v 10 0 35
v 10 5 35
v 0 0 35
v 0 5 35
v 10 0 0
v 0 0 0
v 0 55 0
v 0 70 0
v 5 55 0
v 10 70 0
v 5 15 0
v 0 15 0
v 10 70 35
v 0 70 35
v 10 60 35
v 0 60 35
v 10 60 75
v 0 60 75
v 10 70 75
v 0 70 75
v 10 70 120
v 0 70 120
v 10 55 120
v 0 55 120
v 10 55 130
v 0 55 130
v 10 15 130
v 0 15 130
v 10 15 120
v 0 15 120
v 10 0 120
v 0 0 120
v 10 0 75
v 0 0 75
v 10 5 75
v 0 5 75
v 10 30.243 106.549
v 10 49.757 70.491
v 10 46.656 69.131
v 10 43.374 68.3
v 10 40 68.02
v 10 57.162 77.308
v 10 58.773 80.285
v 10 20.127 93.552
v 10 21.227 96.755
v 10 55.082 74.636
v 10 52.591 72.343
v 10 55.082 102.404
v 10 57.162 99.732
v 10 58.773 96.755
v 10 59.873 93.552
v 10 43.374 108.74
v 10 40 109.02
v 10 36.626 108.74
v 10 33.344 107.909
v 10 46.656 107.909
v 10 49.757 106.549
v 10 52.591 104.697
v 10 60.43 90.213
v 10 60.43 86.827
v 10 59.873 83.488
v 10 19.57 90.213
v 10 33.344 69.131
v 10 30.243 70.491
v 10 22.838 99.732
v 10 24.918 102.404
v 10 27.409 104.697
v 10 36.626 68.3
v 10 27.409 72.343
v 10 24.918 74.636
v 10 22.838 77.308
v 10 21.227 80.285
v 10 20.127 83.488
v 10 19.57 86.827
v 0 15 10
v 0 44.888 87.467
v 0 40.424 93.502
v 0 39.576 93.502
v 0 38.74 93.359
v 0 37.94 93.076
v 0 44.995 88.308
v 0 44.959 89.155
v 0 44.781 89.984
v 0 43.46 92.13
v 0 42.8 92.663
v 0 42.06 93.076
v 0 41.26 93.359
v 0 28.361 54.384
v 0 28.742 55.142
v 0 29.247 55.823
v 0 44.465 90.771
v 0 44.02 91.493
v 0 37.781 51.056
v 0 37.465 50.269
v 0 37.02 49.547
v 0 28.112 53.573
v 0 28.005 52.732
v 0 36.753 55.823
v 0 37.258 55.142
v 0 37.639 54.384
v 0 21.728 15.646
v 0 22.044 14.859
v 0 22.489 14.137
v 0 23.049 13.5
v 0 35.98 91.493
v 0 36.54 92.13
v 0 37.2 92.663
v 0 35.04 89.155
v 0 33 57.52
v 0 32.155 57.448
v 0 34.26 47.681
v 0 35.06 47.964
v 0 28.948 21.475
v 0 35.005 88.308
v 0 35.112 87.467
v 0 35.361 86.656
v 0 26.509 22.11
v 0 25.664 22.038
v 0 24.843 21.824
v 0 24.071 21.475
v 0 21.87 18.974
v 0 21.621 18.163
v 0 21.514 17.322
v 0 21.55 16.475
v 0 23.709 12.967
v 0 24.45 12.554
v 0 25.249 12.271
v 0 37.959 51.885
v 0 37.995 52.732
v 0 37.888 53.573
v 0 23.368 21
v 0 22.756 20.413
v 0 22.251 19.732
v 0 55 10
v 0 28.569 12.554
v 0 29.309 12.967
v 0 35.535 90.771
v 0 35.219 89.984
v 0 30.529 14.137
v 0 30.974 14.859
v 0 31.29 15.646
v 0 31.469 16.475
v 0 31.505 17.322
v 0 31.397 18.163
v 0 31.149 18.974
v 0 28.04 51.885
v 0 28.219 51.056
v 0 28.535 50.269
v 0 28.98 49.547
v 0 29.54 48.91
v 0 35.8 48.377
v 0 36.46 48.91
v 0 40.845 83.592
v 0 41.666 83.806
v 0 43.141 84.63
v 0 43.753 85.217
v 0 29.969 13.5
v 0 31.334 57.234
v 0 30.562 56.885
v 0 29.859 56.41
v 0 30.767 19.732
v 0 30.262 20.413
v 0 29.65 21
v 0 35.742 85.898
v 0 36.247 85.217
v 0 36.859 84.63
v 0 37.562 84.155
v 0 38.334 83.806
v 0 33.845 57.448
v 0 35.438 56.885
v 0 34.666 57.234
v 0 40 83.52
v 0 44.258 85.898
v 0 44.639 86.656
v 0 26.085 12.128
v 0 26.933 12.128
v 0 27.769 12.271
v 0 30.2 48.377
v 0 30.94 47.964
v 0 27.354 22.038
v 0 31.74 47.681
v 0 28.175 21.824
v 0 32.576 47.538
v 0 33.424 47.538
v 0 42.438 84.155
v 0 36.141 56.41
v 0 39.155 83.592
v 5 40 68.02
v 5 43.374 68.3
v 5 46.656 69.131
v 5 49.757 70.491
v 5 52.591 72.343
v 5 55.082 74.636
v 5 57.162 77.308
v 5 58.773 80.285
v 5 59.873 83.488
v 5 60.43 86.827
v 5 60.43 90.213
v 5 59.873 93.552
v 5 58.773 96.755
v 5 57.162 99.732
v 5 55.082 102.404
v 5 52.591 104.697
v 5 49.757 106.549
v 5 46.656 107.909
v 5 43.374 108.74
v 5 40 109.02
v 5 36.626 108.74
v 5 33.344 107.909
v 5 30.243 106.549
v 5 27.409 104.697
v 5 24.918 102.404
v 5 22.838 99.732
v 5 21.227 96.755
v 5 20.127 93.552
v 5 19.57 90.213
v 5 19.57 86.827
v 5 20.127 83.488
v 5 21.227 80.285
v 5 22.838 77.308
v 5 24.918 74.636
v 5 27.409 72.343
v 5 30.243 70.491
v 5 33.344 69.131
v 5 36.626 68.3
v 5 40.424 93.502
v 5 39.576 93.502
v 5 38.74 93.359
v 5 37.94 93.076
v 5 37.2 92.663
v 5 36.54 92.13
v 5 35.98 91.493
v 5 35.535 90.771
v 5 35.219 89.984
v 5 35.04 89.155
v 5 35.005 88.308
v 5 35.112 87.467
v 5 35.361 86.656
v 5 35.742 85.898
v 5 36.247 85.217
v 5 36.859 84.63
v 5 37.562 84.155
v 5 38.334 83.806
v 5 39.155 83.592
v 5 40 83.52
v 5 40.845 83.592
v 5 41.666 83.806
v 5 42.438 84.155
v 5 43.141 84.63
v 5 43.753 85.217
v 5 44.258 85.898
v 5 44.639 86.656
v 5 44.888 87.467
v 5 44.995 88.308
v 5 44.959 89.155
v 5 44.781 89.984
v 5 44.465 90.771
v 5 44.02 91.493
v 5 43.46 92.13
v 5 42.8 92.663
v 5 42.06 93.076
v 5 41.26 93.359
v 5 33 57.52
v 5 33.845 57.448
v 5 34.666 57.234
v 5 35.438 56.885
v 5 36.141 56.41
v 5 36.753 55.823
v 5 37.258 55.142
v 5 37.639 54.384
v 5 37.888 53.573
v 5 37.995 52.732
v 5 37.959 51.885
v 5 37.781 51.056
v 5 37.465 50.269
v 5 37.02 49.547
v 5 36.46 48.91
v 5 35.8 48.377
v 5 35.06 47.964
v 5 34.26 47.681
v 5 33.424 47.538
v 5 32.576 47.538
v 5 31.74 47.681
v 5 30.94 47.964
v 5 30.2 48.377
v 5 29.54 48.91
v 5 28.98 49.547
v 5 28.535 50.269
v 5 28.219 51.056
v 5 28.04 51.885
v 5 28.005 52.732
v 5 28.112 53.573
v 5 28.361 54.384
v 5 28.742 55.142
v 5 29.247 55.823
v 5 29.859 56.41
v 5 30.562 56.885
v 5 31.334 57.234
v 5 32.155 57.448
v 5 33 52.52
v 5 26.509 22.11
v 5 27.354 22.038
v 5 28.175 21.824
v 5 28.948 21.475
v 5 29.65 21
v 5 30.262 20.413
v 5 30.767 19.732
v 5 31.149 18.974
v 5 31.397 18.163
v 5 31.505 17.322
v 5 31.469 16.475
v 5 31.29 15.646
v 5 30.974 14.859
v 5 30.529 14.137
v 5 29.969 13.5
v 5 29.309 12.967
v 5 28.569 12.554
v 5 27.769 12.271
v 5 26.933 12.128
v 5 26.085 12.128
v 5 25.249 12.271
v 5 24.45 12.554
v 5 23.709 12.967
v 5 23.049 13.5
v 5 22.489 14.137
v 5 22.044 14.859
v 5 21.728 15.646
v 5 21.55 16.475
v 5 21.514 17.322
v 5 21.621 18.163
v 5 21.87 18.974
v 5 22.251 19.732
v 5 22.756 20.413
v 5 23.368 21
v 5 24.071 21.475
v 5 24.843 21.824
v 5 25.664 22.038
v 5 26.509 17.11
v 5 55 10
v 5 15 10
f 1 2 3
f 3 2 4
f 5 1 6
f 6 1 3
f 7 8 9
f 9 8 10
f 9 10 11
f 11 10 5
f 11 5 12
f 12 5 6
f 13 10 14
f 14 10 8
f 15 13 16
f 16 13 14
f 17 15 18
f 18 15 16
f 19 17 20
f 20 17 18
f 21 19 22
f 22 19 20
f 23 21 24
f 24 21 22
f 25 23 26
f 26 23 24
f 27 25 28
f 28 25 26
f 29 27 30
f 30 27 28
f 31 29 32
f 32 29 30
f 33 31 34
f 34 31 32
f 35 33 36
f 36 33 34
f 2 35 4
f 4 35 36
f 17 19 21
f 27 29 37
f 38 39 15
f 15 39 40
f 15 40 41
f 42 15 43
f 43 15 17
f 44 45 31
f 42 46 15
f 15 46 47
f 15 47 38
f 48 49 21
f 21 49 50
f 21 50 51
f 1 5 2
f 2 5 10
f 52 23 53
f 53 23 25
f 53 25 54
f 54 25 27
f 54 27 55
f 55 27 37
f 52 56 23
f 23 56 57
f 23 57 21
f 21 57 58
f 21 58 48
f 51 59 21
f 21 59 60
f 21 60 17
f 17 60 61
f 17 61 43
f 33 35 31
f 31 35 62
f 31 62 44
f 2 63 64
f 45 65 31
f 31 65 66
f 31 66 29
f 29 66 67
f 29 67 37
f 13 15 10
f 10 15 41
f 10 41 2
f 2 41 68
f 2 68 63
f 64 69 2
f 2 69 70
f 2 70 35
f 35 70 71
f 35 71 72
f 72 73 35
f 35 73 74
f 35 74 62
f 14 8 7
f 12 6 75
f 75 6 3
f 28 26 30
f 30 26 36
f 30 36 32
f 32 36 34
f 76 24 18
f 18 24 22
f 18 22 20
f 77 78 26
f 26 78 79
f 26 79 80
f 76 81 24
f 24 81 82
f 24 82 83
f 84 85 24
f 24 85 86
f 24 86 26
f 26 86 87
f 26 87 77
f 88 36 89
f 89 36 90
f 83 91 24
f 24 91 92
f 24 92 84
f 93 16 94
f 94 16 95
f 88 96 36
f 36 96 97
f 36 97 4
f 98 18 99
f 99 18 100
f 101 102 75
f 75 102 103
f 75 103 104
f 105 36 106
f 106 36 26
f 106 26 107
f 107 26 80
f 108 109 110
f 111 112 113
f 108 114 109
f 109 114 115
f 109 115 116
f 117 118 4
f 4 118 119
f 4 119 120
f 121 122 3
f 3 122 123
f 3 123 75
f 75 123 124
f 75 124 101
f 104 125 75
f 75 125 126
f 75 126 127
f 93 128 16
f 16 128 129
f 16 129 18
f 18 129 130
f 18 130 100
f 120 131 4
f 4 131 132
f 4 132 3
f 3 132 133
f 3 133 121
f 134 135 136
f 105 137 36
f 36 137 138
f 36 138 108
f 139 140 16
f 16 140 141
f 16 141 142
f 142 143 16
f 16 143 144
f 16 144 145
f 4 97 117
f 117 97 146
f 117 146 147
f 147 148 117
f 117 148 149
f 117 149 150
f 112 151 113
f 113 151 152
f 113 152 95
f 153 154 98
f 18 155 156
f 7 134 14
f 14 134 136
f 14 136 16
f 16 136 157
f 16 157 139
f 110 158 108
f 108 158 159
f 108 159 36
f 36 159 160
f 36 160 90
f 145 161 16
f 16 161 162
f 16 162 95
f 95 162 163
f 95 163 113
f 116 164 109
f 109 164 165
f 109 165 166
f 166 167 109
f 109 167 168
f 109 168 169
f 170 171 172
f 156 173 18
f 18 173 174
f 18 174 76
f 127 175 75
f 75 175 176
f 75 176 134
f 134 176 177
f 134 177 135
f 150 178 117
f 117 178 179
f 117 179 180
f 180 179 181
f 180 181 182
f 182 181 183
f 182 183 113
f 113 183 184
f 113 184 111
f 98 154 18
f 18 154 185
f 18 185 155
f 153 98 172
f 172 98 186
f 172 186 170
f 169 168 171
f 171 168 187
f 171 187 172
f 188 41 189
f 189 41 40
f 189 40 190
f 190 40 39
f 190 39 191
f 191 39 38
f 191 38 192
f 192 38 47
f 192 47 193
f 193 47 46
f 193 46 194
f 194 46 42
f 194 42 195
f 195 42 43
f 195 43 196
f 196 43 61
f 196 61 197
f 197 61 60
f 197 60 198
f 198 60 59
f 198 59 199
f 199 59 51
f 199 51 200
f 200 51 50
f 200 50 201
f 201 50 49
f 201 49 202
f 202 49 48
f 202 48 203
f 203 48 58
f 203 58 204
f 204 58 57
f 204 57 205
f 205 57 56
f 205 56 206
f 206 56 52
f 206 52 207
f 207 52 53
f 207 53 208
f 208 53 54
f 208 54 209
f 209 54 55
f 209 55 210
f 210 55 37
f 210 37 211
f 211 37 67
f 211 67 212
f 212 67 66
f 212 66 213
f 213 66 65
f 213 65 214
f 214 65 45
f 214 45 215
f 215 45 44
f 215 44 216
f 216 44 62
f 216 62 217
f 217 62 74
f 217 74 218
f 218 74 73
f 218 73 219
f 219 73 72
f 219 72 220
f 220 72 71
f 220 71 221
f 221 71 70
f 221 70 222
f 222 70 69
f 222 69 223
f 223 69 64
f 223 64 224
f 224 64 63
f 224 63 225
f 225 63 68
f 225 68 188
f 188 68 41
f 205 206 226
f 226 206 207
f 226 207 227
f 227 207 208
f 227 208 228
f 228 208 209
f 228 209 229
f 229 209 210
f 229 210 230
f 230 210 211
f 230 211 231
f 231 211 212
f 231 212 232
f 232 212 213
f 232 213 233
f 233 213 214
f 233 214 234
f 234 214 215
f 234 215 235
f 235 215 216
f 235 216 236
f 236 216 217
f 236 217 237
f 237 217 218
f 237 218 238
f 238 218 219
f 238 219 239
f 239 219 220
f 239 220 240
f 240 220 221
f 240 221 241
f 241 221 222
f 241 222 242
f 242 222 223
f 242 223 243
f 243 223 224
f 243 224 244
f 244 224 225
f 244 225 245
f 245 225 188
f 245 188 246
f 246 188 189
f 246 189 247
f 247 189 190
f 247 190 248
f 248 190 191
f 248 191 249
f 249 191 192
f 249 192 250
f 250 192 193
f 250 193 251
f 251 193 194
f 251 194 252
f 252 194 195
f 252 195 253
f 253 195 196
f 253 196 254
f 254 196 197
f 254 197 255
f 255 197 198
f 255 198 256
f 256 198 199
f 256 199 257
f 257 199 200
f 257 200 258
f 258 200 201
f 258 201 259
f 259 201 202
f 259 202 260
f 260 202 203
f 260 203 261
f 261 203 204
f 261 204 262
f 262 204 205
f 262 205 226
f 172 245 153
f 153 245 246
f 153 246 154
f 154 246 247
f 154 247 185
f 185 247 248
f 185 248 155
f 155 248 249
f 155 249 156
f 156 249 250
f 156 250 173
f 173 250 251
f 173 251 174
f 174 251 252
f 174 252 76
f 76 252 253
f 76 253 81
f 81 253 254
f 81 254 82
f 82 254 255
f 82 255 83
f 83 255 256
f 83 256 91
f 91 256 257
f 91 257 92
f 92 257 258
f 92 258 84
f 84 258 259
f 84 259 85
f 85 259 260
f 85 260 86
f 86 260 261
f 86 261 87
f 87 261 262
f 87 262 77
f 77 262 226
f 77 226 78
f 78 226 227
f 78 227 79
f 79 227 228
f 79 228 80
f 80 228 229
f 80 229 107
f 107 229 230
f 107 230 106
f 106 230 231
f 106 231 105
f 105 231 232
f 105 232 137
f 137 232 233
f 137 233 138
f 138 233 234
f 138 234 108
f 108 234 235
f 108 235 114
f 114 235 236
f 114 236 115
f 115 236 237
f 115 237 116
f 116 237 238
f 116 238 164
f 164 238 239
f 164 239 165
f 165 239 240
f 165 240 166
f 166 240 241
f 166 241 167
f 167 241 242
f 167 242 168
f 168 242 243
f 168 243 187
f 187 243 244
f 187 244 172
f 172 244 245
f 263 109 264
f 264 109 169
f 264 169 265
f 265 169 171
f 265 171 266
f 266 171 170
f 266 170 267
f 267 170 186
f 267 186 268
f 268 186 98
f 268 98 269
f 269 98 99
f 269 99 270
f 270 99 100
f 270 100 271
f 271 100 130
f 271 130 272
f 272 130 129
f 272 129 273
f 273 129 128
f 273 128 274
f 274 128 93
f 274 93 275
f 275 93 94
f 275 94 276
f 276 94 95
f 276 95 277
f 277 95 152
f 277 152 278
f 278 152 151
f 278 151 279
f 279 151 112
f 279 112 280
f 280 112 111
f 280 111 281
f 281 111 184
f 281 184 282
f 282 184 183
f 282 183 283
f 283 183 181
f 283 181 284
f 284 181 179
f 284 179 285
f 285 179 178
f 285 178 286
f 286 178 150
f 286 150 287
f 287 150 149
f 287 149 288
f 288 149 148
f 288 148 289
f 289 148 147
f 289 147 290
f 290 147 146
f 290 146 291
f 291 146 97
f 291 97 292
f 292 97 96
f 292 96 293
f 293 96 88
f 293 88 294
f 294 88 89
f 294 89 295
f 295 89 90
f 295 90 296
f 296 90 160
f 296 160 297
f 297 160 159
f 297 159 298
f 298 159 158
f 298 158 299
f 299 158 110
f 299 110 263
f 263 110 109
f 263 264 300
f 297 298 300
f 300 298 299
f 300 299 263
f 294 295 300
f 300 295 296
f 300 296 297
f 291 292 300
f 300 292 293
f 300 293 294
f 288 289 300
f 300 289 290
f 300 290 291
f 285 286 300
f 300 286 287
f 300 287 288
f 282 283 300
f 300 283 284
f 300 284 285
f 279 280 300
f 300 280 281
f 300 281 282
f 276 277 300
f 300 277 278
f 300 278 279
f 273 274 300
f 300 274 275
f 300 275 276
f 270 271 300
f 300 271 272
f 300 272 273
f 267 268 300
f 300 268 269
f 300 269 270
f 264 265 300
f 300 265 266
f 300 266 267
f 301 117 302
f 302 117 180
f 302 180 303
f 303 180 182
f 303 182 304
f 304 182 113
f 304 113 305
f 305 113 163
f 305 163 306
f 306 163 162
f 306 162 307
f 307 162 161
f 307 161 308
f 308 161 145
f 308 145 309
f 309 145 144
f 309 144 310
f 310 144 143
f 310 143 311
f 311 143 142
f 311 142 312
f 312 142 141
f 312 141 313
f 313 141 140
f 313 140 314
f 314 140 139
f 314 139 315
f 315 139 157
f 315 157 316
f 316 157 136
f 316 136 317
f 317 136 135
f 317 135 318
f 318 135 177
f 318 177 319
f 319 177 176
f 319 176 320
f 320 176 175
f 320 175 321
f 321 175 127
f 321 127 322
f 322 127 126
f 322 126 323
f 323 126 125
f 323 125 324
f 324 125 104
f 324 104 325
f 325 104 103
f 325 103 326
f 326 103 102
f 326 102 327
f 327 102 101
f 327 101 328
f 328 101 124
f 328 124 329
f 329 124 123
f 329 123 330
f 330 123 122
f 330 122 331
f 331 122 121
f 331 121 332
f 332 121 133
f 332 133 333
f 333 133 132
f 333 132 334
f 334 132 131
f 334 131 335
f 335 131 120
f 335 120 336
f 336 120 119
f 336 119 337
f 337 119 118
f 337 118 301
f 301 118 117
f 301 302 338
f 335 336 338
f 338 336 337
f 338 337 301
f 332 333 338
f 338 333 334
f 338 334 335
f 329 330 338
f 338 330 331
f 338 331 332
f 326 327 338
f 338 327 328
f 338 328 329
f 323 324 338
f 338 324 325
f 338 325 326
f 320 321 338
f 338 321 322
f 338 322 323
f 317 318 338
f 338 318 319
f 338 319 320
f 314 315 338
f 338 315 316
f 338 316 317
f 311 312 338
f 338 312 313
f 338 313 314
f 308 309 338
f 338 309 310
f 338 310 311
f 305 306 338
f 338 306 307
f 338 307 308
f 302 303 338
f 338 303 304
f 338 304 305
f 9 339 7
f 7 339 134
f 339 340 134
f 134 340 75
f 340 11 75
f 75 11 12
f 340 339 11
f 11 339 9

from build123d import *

# Parameters (mm, degrees)
BOSS_EXTRUDE1_DEPTH = 10
SKETCH2_R           = 20.5
CUT_EXTRUDE1_DEPTH  = 5
SKETCH4_R           = 5
CUT_EXTRUDE3_DEPTH  = 148.732867027
SKETCH5_R           = 5
CUT_EXTRUDE4_DEPTH  = 5
SKETCH6_W           = 10
SKETCH6_H           = 40
CUT_EXTRUDE5_DEPTH  = 5


with BuildPart() as part:
    # Sketch1 → Boss-Extrude1 (new body)
    with BuildSketch(Plane(origin=(0, 0, 0), x_dir=(0, 0, -1), z_dir=(1, 0, 0))):
        Polygon((-75, 70), (-120, 70), (-120, 55), (-130, 55), (-130, 15), (-120, 15), (-120, 0), (-75, 0), (-75, 5), (-35, 5), (-35, 0), (-10, 0), (0, 0), (0, 15), (0, 55), (0, 70), (-10, 70), (-35, 70), (-35, 60), (-75, 60), align=None)
    extrude(amount=BOSS_EXTRUDE1_DEPTH)

    # Sketch2 → Cut-Extrude1 (cut)
    with BuildSketch(Plane(origin=(10, 0, 0), x_dir=(0, 0, -1), z_dir=(1, 0, 0))):
        with Locations((-88.52, 40)):
            Circle(SKETCH2_R)
    extrude(amount=-CUT_EXTRUDE1_DEPTH, mode=Mode.SUBTRACT)

    # Sketch4 → Cut-Extrude3 (cut, through all)
    with BuildSketch(Plane(origin=(5, 0, 0), x_dir=(0, 0, -1), z_dir=(1, 0, 0))):
        with Locations((-88.52, 40)):
            Circle(SKETCH4_R)
    extrude(amount=-CUT_EXTRUDE3_DEPTH, mode=Mode.SUBTRACT)

    # Sketch5 → Cut-Extrude4 (cut)
    with BuildSketch(Plane.ZY):
        with Locations((17.11, 26.509090973)):
            Circle(SKETCH5_R)
        with Locations((52.52, 33)):
            Circle(SKETCH5_R)
    extrude(amount=-CUT_EXTRUDE4_DEPTH, mode=Mode.SUBTRACT)

    # Sketch6 → Cut-Extrude5 (cut)
    with BuildSketch(Plane.ZY):
        with Locations((5, 35)):
            Rectangle(SKETCH6_W, SKETCH6_H)
    extrude(amount=-CUT_EXTRUDE5_DEPTH, mode=Mode.SUBTRACT)


solid = part.part
